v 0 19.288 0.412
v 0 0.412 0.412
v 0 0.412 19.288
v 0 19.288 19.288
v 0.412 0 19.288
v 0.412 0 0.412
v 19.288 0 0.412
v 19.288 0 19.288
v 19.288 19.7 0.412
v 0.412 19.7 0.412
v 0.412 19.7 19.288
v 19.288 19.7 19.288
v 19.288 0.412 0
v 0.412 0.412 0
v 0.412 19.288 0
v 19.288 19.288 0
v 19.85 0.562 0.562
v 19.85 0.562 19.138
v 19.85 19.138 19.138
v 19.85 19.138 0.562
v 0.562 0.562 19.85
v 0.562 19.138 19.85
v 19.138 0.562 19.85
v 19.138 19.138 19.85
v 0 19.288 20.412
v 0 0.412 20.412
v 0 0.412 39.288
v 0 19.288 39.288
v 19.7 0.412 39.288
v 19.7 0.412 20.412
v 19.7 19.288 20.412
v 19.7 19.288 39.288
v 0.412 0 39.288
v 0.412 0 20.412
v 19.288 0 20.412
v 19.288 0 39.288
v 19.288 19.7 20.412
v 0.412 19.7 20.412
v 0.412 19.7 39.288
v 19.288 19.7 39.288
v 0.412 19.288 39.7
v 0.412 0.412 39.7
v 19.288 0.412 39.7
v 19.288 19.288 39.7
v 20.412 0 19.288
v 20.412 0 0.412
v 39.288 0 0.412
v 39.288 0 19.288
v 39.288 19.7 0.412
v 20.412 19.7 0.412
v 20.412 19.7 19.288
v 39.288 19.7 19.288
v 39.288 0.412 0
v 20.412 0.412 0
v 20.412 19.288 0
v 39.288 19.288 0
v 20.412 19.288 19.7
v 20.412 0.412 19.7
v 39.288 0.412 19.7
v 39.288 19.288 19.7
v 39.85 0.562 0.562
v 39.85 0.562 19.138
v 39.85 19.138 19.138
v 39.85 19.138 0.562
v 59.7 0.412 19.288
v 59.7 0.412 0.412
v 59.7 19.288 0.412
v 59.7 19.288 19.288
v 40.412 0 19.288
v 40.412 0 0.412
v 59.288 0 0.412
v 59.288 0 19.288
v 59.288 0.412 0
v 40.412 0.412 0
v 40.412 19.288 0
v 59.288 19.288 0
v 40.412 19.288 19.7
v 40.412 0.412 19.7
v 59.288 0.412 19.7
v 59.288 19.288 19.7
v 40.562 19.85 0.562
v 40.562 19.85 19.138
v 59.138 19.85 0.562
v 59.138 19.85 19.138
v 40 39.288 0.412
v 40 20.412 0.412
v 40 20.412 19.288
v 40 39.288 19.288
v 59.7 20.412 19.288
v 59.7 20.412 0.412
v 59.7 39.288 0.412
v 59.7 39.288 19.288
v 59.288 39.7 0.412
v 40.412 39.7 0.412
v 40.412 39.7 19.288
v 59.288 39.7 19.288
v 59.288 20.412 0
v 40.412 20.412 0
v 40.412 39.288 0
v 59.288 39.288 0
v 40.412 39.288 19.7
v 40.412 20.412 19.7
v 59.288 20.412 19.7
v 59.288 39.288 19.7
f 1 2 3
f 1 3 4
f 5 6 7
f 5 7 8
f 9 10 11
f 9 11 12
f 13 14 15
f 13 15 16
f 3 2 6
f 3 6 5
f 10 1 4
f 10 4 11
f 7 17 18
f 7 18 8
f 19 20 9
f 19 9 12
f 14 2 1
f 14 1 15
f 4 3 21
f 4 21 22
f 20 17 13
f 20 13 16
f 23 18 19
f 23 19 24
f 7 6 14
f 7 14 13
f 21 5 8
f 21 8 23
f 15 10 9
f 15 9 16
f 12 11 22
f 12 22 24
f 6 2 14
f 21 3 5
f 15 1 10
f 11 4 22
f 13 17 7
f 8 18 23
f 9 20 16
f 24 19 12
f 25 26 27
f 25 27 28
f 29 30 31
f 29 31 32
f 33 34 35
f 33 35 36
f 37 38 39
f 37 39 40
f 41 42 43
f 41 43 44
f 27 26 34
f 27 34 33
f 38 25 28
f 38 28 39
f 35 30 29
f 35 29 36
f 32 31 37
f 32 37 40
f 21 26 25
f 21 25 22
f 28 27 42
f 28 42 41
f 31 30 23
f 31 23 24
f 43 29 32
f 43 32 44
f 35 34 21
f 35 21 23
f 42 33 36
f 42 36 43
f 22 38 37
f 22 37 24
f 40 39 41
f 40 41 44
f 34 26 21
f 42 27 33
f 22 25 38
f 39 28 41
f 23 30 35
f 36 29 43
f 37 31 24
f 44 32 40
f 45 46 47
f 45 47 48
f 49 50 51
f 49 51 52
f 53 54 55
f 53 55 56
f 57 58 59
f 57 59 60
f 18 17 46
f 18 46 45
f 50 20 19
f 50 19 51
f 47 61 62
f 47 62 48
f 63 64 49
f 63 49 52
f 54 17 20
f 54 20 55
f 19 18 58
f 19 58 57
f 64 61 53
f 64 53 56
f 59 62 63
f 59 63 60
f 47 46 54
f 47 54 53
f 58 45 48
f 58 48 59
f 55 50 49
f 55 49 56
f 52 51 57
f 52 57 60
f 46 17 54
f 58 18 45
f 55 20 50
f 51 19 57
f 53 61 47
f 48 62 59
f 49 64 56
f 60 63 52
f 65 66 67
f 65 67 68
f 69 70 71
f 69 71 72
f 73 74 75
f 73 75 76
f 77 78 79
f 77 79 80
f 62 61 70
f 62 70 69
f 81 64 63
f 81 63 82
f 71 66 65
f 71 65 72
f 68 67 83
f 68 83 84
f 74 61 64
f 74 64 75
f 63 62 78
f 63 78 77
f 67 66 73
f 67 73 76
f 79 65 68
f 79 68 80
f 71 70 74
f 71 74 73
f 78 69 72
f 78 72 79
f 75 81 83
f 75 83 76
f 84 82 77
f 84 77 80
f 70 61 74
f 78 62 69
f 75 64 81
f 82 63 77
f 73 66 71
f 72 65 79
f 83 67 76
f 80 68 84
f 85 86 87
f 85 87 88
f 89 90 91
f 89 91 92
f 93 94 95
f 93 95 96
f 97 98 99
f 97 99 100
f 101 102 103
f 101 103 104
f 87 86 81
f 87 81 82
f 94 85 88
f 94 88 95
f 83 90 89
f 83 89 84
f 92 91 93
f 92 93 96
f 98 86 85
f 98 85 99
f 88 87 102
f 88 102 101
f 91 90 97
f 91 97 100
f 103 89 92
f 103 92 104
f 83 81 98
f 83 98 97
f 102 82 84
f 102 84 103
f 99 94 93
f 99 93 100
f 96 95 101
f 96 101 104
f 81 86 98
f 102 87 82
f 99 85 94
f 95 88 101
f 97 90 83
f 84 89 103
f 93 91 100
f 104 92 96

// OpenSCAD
// Wongo piece 2: Long hook. GPL-3.0.
// 20 mm lattice; 0.15 mm inward surface clearance; 0.5 mm chamfer.
// Mesh is identical to the STL; changing unit scales the complete finished mesh.
unit=20;
scale([unit/20,unit/20,unit/20]) polyhedron(points=[[0,19.28786797,0.41213203],[0,0.41213203,0.41213203],[0,0.41213203,19.28786797],[0,19.28786797,19.28786797],[0.41213203,0,19.28786797],[0.41213203,0,0.41213203],[19.28786797,0,0.41213203],[19.28786797,0,19.28786797],[19.28786797,19.7,0.41213203],[0.41213203,19.7,0.41213203],[0.41213203,19.7,19.28786797],[19.28786797,19.7,19.28786797],[19.28786797,0.41213203,0],[0.41213203,0.41213203,0],[0.41213203,19.28786797,0],[19.28786797,19.28786797,0],[19.85,0.56213203,0.56213203],[19.85,0.56213203,19.13786797],[19.85,19.13786797,19.13786797],[19.85,19.13786797,0.56213203],[0.56213203,0.56213203,19.85],[0.56213203,19.13786797,19.85],[19.13786797,0.56213203,19.85],[19.13786797,19.13786797,19.85],[0,19.28786797,20.41213203],[0,0.41213203,20.41213203],[0,0.41213203,39.28786797],[0,19.28786797,39.28786797],[19.7,0.41213203,39.28786797],[19.7,0.41213203,20.41213203],[19.7,19.28786797,20.41213203],[19.7,19.28786797,39.28786797],[0.41213203,0,39.28786797],[0.41213203,0,20.41213203],[19.28786797,0,20.41213203],[19.28786797,0,39.28786797],[19.28786797,19.7,20.41213203],[0.41213203,19.7,20.41213203],[0.41213203,19.7,39.28786797],[19.28786797,19.7,39.28786797],[0.41213203,19.28786797,39.7],[0.41213203,0.41213203,39.7],[19.28786797,0.41213203,39.7],[19.28786797,19.28786797,39.7],[20.41213203,0,19.28786797],[20.41213203,0,0.41213203],[39.28786797,0,0.41213203],[39.28786797,0,19.28786797],[39.28786797,19.7,0.41213203],[20.41213203,19.7,0.41213203],[20.41213203,19.7,19.28786797],[39.28786797,19.7,19.28786797],[39.28786797,0.41213203,0],[20.41213203,0.41213203,0],[20.41213203,19.28786797,0],[39.28786797,19.28786797,0],[20.41213203,19.28786797,19.7],[20.41213203,0.41213203,19.7],[39.28786797,0.41213203,19.7],[39.28786797,19.28786797,19.7],[39.85,0.56213203,0.56213203],[39.85,0.56213203,19.13786797],[39.85,19.13786797,19.13786797],[39.85,19.13786797,0.56213203],[59.7,0.41213203,19.28786797],[59.7,0.41213203,0.41213203],[59.7,19.28786797,0.41213203],[59.7,19.28786797,19.28786797],[40.41213203,0,19.28786797],[40.41213203,0,0.41213203],[59.28786797,0,0.41213203],[59.28786797,0,19.28786797],[59.28786797,0.41213203,0],[40.41213203,0.41213203,0],[40.41213203,19.28786797,0],[59.28786797,19.28786797,0],[40.41213203,19.28786797,19.7],[40.41213203,0.41213203,19.7],[59.28786797,0.41213203,19.7],[59.28786797,19.28786797,19.7],[40.56213203,19.85,0.56213203],[40.56213203,19.85,19.13786797],[59.13786797,19.85,0.56213203],[59.13786797,19.85,19.13786797],[40,39.28786797,0.41213203],[40,20.41213203,0.41213203],[40,20.41213203,19.28786797],[40,39.28786797,19.28786797],[59.7,20.41213203,19.28786797],[59.7,20.41213203,0.41213203],[59.7,39.28786797,0.41213203],[59.7,39.28786797,19.28786797],[59.28786797,39.7,0.41213203],[40.41213203,39.7,0.41213203],[40.41213203,39.7,19.28786797],[59.28786797,39.7,19.28786797],[59.28786797,20.41213203,0],[40.41213203,20.41213203,0],[40.41213203,39.28786797,0],[59.28786797,39.28786797,0],[40.41213203,39.28786797,19.7],[40.41213203,20.41213203,19.7],[59.28786797,20.41213203,19.7],[59.28786797,39.28786797,19.7]],faces=[[2,1,0],[3,2,0],[6,5,4],[7,6,4],[10,9,8],[11,10,8],[14,13,12],[15,14,12],[5,1,2],[4,5,2],[3,0,9],[10,3,9],[17,16,6],[7,17,6],[8,19,18],[11,8,18],[0,1,13],[14,0,13],[20,2,3],[21,20,3],[12,16,19],[15,12,19],[18,17,22],[23,18,22],[13,5,6],[12,13,6],[7,4,20],[22,7,20],[8,9,14],[15,8,14],[21,10,11],[23,21,11],[13,1,5],[4,2,20],[9,0,14],[21,3,10],[6,16,12],[22,17,7],[15,19,8],[11,18,23],[26,25,24],[27,26,24],[30,29,28],[31,30,28],[34,33,32],[35,34,32],[38,37,36],[39,38,36],[42,41,40],[43,42,40],[33,25,26],[32,33,26],[27,24,37],[38,27,37],[28,29,34],[35,28,34],[36,30,31],[39,36,31],[24,25,20],[21,24,20],[41,26,27],[40,41,27],[22,29,30],[23,22,30],[31,28,42],[43,31,42],[20,33,34],[22,20,34],[35,32,41],[42,35,41],[36,37,21],[23,36,21],[40,38,39],[43,40,39],[20,25,33],[32,26,41],[37,24,21],[40,27,38],[34,29,22],[42,28,35],[23,30,36],[39,31,43],[46,45,44],[47,46,44],[50,49,48],[51,50,48],[54,53,52],[55,54,52],[58,57,56],[59,58,56],[45,16,17],[44,45,17],[18,19,49],[50,18,49],[61,60,46],[47,61,46],[48,63,62],[51,48,62],[19,16,53],[54,19,53],[57,17,18],[56,57,18],[52,60,63],[55,52,63],[62,61,58],[59,62,58],[53,45,46],[52,53,46],[47,44,57],[58,47,57],[48,49,54],[55,48,54],[56,50,51],[59,56,51],[53,16,45],[44,17,57],[49,19,54],[56,18,50],[46,60,52],[58,61,47],[55,63,48],[51,62,59],[66,65,64],[67,66,64],[70,69,68],[71,70,68],[74,73,72],[75,74,72],[78,77,76],[79,78,76],[69,60,61],[68,69,61],[62,63,80],[81,62,80],[64,65,70],[71,64,70],[82,66,67],[83,82,67],[63,60,73],[74,63,73],[77,61,62],[76,77,62],[72,65,66],[75,72,66],[67,64,78],[79,67,78],[73,69,70],[72,73,70],[71,68,77],[78,71,77],[82,80,74],[75,82,74],[76,81,83],[79,76,83],[73,60,69],[68,61,77],[80,63,74],[76,62,81],[70,65,72],[78,64,71],[75,66,82],[83,67,79],[86,85,84],[87,86,84],[90,89,88],[91,90,88],[94,93,92],[95,94,92],[98,97,96],[99,98,96],[102,101,100],[103,102,100],[80,85,86],[81,80,86],[87,84,93],[94,87,93],[88,89,82],[83,88,82],[92,90,91],[95,92,91],[84,85,97],[98,84,97],[101,86,87],[100,101,87],[96,89,90],[99,96,90],[91,88,102],[103,91,102],[97,80,82],[96,97,82],[83,81,101],[102,83,101],[92,93,98],[99,92,98],[100,94,95],[103,100,95],[97,85,80],[81,86,101],[93,84,98],[100,87,94],[82,89,96],[102,88,83],[99,90,92],[95,91,103]],convexity=10);
